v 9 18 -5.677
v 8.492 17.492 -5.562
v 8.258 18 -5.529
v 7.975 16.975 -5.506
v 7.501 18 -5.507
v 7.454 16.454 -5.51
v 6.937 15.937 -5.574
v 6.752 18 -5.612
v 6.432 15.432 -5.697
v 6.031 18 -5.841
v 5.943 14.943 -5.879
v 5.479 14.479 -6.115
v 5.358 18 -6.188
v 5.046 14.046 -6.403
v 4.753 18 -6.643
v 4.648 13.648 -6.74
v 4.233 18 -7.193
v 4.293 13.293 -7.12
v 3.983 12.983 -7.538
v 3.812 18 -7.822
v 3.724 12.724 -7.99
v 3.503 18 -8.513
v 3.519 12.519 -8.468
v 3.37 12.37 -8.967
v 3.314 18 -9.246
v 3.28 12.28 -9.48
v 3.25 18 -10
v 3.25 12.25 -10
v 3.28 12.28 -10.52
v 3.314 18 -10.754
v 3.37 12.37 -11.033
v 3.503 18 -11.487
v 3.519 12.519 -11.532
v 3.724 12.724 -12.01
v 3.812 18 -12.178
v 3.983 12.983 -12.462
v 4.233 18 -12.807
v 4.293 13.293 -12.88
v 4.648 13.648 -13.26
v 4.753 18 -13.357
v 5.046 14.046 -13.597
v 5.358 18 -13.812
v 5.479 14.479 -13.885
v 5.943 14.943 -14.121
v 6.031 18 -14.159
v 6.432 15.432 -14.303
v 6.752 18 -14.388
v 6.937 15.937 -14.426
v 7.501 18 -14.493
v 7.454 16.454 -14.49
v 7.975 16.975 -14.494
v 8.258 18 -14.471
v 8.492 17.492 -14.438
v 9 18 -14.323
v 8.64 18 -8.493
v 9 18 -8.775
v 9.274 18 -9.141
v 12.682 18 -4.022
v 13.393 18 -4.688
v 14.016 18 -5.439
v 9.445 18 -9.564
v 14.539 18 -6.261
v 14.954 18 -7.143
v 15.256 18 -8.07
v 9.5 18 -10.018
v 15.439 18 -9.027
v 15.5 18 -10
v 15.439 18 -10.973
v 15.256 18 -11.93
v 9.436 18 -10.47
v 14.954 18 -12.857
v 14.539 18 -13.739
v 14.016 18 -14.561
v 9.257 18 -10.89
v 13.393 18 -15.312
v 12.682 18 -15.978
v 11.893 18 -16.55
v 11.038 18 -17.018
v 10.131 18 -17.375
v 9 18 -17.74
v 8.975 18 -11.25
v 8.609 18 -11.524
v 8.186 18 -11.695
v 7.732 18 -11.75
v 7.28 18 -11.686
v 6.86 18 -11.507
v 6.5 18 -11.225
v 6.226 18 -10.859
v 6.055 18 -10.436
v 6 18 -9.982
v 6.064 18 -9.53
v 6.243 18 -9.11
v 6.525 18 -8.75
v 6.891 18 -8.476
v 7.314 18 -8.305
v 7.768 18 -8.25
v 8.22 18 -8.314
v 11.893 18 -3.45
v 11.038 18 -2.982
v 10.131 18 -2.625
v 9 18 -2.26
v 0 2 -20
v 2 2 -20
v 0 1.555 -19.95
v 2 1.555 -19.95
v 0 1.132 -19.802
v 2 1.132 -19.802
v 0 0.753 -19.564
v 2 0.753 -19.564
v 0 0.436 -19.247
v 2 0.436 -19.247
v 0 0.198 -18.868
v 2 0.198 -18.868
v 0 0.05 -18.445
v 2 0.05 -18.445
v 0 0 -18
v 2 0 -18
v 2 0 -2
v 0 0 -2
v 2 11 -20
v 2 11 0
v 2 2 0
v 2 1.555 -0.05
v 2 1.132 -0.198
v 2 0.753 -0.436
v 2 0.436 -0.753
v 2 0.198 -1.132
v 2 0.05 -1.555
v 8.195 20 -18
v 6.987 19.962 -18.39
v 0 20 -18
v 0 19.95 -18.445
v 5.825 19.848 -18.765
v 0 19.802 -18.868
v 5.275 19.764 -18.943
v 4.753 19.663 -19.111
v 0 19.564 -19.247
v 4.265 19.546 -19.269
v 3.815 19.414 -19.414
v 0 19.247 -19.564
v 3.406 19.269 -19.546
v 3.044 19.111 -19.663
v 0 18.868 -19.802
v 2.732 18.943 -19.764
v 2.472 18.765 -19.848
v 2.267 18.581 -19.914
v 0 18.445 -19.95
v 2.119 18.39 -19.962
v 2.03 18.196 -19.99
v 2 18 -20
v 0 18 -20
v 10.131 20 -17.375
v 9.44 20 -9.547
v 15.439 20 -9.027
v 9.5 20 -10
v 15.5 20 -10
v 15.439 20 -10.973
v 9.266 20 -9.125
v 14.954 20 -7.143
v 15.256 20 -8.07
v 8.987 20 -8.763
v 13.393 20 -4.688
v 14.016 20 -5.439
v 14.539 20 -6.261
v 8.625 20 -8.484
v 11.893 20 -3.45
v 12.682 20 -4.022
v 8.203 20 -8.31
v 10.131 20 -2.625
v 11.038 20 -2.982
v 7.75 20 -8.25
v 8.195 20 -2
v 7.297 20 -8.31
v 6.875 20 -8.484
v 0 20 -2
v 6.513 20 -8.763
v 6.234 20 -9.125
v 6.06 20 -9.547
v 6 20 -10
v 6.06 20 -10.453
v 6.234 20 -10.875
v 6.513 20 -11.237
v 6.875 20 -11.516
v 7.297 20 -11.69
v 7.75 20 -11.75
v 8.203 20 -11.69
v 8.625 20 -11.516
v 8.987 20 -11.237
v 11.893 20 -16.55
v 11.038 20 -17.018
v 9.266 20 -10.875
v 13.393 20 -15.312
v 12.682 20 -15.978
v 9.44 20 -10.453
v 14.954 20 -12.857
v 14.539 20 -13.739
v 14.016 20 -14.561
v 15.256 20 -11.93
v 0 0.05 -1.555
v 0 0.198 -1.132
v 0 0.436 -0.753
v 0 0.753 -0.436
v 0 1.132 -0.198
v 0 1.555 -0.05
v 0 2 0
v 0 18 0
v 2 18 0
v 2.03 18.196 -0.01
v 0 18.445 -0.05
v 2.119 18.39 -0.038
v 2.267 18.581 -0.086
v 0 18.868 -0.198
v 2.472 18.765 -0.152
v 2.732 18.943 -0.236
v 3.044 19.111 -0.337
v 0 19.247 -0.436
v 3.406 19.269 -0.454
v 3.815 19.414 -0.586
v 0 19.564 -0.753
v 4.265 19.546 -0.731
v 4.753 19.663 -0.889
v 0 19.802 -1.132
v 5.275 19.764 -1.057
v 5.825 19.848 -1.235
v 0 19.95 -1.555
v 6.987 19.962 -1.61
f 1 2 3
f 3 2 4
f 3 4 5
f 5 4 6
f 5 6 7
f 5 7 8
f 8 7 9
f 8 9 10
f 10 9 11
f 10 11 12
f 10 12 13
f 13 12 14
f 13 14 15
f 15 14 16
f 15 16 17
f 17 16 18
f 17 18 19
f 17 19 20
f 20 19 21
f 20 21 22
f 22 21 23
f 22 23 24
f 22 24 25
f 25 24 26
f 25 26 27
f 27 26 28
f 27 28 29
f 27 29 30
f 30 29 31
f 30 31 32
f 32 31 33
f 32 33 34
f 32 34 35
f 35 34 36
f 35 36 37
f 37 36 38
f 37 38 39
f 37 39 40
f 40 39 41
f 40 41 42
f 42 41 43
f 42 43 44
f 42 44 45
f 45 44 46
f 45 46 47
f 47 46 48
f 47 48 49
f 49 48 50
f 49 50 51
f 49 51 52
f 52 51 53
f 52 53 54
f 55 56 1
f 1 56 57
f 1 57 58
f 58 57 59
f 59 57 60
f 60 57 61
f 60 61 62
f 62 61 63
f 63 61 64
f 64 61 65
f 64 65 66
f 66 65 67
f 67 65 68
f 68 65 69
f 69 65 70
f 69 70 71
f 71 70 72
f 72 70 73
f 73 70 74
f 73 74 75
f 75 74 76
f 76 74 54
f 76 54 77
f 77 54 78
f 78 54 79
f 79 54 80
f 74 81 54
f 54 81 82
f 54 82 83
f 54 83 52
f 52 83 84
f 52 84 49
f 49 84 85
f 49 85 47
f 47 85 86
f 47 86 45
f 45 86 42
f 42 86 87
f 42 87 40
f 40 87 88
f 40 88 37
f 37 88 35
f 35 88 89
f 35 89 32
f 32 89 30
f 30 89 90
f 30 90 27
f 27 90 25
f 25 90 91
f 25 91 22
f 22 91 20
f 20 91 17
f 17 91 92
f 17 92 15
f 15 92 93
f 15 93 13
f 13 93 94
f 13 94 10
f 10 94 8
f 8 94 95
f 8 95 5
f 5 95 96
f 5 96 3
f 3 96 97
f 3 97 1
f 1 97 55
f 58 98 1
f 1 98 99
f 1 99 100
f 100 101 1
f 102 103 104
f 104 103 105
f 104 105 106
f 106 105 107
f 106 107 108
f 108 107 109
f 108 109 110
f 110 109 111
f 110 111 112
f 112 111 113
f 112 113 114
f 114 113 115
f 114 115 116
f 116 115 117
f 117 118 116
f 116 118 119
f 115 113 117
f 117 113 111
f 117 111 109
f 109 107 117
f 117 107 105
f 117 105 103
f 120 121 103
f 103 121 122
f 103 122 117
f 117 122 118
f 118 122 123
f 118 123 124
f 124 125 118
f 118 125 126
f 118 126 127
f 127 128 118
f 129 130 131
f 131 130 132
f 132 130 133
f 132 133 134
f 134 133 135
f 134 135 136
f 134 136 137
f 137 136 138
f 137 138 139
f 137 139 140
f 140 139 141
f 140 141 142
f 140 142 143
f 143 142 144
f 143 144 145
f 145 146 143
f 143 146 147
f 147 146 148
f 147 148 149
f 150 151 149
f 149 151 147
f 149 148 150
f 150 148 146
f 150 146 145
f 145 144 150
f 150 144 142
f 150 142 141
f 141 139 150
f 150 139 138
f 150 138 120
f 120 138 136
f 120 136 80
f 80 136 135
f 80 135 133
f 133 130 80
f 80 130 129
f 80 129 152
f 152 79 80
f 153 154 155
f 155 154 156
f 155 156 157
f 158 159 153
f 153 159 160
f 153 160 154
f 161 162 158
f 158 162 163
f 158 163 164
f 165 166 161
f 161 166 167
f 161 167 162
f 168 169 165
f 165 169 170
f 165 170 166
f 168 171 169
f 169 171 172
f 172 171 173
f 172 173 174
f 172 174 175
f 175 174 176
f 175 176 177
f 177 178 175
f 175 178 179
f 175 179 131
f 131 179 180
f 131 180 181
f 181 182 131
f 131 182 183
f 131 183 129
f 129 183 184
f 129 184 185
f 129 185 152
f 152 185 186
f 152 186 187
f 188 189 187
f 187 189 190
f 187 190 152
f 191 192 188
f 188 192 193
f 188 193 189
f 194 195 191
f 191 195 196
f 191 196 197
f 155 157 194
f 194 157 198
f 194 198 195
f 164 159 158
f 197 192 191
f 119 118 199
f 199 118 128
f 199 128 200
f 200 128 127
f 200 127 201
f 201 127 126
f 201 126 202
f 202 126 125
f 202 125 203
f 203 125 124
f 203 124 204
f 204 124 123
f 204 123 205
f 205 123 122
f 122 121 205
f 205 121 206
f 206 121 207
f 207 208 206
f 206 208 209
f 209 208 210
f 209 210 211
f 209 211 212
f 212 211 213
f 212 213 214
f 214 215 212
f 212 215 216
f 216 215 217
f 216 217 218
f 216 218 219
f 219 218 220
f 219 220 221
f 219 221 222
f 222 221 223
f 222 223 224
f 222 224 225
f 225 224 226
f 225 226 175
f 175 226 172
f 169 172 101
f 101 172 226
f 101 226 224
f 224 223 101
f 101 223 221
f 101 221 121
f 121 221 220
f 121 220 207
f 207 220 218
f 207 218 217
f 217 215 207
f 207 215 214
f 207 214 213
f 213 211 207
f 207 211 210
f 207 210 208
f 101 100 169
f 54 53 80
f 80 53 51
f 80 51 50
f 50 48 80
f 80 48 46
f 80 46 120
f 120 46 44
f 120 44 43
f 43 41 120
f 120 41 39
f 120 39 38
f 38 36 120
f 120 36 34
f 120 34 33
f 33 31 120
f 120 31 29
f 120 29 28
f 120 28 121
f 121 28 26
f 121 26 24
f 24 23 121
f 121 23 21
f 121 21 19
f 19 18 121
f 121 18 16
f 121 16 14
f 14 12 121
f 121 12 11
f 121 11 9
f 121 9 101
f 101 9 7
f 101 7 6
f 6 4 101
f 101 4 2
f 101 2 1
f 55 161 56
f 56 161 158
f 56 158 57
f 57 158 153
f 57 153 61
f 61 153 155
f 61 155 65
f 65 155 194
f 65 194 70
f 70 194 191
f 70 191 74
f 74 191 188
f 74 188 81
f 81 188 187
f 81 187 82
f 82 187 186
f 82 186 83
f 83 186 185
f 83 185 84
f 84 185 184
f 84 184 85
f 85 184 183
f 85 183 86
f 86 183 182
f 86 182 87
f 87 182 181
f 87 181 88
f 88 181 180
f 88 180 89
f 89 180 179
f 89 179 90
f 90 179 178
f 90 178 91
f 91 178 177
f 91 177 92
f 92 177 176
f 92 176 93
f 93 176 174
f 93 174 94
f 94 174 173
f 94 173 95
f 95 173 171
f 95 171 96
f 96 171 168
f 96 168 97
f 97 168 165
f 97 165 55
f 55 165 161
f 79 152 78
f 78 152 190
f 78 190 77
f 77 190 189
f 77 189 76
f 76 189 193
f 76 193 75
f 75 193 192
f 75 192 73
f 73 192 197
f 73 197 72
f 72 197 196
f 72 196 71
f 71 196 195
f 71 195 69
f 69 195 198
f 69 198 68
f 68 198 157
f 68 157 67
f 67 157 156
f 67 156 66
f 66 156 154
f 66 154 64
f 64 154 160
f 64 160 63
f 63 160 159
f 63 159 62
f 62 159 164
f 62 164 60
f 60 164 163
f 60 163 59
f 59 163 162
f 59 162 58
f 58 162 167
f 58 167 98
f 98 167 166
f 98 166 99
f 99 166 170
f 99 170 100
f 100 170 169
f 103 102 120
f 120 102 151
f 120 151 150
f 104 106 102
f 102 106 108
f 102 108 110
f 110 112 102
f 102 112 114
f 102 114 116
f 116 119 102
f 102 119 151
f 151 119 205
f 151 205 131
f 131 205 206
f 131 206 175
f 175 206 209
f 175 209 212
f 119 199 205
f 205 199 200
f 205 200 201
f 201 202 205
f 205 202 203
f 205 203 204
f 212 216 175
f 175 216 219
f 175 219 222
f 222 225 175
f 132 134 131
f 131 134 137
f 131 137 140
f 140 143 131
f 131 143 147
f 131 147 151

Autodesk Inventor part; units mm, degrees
ref_plane "YZ Plane" through (0, 0, 0) normal (1, 0, 0) x (0, 1, 0)
ref_plane "XZ Plane" through (0, 0, 0) normal (0, 1, 0) x (-1, 0, 0)
ref_plane "XY Plane" through (0, 0, 0) normal (0, 0, 1) x (1, 0, 0)
sketch "Sketch1" plane through (0, 0, 0) normal (1, 0, 0) x (0, 1, 0)
  line L0 (0, 0) -> (20, 0)
  line L1 (20, 0) -> (20, -20)
  line L2 (20, -20) -> (0, -20)
  line L3 (0, -20) -> (0, 0)
  dimension "d0" = 20
  dimension "d1" = 20
extrude "Extrusion1" add sketch "Sketch1" along normal blind 2
sketch "Sketch3" plane through (0, 20, 0) normal (0, 1, 0) x (1, 0, 0)
  circle A0 centre (7.75, 10) radius 7.75
  line L0 (2, 20) -> (2, 0) projected
  line L1 (2, 0) -> (10.1308, 2.6248)
  line L2 (2, 20) -> (10.1308, 17.3752)
  circle A1 centre (7.75, 10) radius 1.75
  line L3 (0, 20) -> (0, 0) projected
  dimension "d11" = 15.5
  dimension "d12" = 3.5
extrude "Extrusion3" add sketch "Sketch3" against normal blind 2 contours A0 L0 | A0 L0 L2 | L1 L0 A0 picked at (3.3333, 10)
chamfer "Chamfer3" distance 7 angle 45 1 edges at (2, 18, -10)
fillet "Fillet1" radius 2 4 edges at (1, 20, 0) (1, 0, 0) (1, 20, -20) (1, 0, -20)
sketch "Sketch4" plane through (0, 18, 0) normal (0, -1, 0) x (1, 0, 0)
  arc A0 (9, -11.2247) -> (9, -8.7753) centre (7.75, -10) ccw projected
  circle A1 centre (7.75, -10) radius 4.5
  point P0 (0, 0)
  dimension "d22" = 9
extrude "Extrusion4" cut sketch "Sketch4" along normal blind 6
properties part number "ChargingArm - FlatPlateBracket" material "ABS Plastic"
